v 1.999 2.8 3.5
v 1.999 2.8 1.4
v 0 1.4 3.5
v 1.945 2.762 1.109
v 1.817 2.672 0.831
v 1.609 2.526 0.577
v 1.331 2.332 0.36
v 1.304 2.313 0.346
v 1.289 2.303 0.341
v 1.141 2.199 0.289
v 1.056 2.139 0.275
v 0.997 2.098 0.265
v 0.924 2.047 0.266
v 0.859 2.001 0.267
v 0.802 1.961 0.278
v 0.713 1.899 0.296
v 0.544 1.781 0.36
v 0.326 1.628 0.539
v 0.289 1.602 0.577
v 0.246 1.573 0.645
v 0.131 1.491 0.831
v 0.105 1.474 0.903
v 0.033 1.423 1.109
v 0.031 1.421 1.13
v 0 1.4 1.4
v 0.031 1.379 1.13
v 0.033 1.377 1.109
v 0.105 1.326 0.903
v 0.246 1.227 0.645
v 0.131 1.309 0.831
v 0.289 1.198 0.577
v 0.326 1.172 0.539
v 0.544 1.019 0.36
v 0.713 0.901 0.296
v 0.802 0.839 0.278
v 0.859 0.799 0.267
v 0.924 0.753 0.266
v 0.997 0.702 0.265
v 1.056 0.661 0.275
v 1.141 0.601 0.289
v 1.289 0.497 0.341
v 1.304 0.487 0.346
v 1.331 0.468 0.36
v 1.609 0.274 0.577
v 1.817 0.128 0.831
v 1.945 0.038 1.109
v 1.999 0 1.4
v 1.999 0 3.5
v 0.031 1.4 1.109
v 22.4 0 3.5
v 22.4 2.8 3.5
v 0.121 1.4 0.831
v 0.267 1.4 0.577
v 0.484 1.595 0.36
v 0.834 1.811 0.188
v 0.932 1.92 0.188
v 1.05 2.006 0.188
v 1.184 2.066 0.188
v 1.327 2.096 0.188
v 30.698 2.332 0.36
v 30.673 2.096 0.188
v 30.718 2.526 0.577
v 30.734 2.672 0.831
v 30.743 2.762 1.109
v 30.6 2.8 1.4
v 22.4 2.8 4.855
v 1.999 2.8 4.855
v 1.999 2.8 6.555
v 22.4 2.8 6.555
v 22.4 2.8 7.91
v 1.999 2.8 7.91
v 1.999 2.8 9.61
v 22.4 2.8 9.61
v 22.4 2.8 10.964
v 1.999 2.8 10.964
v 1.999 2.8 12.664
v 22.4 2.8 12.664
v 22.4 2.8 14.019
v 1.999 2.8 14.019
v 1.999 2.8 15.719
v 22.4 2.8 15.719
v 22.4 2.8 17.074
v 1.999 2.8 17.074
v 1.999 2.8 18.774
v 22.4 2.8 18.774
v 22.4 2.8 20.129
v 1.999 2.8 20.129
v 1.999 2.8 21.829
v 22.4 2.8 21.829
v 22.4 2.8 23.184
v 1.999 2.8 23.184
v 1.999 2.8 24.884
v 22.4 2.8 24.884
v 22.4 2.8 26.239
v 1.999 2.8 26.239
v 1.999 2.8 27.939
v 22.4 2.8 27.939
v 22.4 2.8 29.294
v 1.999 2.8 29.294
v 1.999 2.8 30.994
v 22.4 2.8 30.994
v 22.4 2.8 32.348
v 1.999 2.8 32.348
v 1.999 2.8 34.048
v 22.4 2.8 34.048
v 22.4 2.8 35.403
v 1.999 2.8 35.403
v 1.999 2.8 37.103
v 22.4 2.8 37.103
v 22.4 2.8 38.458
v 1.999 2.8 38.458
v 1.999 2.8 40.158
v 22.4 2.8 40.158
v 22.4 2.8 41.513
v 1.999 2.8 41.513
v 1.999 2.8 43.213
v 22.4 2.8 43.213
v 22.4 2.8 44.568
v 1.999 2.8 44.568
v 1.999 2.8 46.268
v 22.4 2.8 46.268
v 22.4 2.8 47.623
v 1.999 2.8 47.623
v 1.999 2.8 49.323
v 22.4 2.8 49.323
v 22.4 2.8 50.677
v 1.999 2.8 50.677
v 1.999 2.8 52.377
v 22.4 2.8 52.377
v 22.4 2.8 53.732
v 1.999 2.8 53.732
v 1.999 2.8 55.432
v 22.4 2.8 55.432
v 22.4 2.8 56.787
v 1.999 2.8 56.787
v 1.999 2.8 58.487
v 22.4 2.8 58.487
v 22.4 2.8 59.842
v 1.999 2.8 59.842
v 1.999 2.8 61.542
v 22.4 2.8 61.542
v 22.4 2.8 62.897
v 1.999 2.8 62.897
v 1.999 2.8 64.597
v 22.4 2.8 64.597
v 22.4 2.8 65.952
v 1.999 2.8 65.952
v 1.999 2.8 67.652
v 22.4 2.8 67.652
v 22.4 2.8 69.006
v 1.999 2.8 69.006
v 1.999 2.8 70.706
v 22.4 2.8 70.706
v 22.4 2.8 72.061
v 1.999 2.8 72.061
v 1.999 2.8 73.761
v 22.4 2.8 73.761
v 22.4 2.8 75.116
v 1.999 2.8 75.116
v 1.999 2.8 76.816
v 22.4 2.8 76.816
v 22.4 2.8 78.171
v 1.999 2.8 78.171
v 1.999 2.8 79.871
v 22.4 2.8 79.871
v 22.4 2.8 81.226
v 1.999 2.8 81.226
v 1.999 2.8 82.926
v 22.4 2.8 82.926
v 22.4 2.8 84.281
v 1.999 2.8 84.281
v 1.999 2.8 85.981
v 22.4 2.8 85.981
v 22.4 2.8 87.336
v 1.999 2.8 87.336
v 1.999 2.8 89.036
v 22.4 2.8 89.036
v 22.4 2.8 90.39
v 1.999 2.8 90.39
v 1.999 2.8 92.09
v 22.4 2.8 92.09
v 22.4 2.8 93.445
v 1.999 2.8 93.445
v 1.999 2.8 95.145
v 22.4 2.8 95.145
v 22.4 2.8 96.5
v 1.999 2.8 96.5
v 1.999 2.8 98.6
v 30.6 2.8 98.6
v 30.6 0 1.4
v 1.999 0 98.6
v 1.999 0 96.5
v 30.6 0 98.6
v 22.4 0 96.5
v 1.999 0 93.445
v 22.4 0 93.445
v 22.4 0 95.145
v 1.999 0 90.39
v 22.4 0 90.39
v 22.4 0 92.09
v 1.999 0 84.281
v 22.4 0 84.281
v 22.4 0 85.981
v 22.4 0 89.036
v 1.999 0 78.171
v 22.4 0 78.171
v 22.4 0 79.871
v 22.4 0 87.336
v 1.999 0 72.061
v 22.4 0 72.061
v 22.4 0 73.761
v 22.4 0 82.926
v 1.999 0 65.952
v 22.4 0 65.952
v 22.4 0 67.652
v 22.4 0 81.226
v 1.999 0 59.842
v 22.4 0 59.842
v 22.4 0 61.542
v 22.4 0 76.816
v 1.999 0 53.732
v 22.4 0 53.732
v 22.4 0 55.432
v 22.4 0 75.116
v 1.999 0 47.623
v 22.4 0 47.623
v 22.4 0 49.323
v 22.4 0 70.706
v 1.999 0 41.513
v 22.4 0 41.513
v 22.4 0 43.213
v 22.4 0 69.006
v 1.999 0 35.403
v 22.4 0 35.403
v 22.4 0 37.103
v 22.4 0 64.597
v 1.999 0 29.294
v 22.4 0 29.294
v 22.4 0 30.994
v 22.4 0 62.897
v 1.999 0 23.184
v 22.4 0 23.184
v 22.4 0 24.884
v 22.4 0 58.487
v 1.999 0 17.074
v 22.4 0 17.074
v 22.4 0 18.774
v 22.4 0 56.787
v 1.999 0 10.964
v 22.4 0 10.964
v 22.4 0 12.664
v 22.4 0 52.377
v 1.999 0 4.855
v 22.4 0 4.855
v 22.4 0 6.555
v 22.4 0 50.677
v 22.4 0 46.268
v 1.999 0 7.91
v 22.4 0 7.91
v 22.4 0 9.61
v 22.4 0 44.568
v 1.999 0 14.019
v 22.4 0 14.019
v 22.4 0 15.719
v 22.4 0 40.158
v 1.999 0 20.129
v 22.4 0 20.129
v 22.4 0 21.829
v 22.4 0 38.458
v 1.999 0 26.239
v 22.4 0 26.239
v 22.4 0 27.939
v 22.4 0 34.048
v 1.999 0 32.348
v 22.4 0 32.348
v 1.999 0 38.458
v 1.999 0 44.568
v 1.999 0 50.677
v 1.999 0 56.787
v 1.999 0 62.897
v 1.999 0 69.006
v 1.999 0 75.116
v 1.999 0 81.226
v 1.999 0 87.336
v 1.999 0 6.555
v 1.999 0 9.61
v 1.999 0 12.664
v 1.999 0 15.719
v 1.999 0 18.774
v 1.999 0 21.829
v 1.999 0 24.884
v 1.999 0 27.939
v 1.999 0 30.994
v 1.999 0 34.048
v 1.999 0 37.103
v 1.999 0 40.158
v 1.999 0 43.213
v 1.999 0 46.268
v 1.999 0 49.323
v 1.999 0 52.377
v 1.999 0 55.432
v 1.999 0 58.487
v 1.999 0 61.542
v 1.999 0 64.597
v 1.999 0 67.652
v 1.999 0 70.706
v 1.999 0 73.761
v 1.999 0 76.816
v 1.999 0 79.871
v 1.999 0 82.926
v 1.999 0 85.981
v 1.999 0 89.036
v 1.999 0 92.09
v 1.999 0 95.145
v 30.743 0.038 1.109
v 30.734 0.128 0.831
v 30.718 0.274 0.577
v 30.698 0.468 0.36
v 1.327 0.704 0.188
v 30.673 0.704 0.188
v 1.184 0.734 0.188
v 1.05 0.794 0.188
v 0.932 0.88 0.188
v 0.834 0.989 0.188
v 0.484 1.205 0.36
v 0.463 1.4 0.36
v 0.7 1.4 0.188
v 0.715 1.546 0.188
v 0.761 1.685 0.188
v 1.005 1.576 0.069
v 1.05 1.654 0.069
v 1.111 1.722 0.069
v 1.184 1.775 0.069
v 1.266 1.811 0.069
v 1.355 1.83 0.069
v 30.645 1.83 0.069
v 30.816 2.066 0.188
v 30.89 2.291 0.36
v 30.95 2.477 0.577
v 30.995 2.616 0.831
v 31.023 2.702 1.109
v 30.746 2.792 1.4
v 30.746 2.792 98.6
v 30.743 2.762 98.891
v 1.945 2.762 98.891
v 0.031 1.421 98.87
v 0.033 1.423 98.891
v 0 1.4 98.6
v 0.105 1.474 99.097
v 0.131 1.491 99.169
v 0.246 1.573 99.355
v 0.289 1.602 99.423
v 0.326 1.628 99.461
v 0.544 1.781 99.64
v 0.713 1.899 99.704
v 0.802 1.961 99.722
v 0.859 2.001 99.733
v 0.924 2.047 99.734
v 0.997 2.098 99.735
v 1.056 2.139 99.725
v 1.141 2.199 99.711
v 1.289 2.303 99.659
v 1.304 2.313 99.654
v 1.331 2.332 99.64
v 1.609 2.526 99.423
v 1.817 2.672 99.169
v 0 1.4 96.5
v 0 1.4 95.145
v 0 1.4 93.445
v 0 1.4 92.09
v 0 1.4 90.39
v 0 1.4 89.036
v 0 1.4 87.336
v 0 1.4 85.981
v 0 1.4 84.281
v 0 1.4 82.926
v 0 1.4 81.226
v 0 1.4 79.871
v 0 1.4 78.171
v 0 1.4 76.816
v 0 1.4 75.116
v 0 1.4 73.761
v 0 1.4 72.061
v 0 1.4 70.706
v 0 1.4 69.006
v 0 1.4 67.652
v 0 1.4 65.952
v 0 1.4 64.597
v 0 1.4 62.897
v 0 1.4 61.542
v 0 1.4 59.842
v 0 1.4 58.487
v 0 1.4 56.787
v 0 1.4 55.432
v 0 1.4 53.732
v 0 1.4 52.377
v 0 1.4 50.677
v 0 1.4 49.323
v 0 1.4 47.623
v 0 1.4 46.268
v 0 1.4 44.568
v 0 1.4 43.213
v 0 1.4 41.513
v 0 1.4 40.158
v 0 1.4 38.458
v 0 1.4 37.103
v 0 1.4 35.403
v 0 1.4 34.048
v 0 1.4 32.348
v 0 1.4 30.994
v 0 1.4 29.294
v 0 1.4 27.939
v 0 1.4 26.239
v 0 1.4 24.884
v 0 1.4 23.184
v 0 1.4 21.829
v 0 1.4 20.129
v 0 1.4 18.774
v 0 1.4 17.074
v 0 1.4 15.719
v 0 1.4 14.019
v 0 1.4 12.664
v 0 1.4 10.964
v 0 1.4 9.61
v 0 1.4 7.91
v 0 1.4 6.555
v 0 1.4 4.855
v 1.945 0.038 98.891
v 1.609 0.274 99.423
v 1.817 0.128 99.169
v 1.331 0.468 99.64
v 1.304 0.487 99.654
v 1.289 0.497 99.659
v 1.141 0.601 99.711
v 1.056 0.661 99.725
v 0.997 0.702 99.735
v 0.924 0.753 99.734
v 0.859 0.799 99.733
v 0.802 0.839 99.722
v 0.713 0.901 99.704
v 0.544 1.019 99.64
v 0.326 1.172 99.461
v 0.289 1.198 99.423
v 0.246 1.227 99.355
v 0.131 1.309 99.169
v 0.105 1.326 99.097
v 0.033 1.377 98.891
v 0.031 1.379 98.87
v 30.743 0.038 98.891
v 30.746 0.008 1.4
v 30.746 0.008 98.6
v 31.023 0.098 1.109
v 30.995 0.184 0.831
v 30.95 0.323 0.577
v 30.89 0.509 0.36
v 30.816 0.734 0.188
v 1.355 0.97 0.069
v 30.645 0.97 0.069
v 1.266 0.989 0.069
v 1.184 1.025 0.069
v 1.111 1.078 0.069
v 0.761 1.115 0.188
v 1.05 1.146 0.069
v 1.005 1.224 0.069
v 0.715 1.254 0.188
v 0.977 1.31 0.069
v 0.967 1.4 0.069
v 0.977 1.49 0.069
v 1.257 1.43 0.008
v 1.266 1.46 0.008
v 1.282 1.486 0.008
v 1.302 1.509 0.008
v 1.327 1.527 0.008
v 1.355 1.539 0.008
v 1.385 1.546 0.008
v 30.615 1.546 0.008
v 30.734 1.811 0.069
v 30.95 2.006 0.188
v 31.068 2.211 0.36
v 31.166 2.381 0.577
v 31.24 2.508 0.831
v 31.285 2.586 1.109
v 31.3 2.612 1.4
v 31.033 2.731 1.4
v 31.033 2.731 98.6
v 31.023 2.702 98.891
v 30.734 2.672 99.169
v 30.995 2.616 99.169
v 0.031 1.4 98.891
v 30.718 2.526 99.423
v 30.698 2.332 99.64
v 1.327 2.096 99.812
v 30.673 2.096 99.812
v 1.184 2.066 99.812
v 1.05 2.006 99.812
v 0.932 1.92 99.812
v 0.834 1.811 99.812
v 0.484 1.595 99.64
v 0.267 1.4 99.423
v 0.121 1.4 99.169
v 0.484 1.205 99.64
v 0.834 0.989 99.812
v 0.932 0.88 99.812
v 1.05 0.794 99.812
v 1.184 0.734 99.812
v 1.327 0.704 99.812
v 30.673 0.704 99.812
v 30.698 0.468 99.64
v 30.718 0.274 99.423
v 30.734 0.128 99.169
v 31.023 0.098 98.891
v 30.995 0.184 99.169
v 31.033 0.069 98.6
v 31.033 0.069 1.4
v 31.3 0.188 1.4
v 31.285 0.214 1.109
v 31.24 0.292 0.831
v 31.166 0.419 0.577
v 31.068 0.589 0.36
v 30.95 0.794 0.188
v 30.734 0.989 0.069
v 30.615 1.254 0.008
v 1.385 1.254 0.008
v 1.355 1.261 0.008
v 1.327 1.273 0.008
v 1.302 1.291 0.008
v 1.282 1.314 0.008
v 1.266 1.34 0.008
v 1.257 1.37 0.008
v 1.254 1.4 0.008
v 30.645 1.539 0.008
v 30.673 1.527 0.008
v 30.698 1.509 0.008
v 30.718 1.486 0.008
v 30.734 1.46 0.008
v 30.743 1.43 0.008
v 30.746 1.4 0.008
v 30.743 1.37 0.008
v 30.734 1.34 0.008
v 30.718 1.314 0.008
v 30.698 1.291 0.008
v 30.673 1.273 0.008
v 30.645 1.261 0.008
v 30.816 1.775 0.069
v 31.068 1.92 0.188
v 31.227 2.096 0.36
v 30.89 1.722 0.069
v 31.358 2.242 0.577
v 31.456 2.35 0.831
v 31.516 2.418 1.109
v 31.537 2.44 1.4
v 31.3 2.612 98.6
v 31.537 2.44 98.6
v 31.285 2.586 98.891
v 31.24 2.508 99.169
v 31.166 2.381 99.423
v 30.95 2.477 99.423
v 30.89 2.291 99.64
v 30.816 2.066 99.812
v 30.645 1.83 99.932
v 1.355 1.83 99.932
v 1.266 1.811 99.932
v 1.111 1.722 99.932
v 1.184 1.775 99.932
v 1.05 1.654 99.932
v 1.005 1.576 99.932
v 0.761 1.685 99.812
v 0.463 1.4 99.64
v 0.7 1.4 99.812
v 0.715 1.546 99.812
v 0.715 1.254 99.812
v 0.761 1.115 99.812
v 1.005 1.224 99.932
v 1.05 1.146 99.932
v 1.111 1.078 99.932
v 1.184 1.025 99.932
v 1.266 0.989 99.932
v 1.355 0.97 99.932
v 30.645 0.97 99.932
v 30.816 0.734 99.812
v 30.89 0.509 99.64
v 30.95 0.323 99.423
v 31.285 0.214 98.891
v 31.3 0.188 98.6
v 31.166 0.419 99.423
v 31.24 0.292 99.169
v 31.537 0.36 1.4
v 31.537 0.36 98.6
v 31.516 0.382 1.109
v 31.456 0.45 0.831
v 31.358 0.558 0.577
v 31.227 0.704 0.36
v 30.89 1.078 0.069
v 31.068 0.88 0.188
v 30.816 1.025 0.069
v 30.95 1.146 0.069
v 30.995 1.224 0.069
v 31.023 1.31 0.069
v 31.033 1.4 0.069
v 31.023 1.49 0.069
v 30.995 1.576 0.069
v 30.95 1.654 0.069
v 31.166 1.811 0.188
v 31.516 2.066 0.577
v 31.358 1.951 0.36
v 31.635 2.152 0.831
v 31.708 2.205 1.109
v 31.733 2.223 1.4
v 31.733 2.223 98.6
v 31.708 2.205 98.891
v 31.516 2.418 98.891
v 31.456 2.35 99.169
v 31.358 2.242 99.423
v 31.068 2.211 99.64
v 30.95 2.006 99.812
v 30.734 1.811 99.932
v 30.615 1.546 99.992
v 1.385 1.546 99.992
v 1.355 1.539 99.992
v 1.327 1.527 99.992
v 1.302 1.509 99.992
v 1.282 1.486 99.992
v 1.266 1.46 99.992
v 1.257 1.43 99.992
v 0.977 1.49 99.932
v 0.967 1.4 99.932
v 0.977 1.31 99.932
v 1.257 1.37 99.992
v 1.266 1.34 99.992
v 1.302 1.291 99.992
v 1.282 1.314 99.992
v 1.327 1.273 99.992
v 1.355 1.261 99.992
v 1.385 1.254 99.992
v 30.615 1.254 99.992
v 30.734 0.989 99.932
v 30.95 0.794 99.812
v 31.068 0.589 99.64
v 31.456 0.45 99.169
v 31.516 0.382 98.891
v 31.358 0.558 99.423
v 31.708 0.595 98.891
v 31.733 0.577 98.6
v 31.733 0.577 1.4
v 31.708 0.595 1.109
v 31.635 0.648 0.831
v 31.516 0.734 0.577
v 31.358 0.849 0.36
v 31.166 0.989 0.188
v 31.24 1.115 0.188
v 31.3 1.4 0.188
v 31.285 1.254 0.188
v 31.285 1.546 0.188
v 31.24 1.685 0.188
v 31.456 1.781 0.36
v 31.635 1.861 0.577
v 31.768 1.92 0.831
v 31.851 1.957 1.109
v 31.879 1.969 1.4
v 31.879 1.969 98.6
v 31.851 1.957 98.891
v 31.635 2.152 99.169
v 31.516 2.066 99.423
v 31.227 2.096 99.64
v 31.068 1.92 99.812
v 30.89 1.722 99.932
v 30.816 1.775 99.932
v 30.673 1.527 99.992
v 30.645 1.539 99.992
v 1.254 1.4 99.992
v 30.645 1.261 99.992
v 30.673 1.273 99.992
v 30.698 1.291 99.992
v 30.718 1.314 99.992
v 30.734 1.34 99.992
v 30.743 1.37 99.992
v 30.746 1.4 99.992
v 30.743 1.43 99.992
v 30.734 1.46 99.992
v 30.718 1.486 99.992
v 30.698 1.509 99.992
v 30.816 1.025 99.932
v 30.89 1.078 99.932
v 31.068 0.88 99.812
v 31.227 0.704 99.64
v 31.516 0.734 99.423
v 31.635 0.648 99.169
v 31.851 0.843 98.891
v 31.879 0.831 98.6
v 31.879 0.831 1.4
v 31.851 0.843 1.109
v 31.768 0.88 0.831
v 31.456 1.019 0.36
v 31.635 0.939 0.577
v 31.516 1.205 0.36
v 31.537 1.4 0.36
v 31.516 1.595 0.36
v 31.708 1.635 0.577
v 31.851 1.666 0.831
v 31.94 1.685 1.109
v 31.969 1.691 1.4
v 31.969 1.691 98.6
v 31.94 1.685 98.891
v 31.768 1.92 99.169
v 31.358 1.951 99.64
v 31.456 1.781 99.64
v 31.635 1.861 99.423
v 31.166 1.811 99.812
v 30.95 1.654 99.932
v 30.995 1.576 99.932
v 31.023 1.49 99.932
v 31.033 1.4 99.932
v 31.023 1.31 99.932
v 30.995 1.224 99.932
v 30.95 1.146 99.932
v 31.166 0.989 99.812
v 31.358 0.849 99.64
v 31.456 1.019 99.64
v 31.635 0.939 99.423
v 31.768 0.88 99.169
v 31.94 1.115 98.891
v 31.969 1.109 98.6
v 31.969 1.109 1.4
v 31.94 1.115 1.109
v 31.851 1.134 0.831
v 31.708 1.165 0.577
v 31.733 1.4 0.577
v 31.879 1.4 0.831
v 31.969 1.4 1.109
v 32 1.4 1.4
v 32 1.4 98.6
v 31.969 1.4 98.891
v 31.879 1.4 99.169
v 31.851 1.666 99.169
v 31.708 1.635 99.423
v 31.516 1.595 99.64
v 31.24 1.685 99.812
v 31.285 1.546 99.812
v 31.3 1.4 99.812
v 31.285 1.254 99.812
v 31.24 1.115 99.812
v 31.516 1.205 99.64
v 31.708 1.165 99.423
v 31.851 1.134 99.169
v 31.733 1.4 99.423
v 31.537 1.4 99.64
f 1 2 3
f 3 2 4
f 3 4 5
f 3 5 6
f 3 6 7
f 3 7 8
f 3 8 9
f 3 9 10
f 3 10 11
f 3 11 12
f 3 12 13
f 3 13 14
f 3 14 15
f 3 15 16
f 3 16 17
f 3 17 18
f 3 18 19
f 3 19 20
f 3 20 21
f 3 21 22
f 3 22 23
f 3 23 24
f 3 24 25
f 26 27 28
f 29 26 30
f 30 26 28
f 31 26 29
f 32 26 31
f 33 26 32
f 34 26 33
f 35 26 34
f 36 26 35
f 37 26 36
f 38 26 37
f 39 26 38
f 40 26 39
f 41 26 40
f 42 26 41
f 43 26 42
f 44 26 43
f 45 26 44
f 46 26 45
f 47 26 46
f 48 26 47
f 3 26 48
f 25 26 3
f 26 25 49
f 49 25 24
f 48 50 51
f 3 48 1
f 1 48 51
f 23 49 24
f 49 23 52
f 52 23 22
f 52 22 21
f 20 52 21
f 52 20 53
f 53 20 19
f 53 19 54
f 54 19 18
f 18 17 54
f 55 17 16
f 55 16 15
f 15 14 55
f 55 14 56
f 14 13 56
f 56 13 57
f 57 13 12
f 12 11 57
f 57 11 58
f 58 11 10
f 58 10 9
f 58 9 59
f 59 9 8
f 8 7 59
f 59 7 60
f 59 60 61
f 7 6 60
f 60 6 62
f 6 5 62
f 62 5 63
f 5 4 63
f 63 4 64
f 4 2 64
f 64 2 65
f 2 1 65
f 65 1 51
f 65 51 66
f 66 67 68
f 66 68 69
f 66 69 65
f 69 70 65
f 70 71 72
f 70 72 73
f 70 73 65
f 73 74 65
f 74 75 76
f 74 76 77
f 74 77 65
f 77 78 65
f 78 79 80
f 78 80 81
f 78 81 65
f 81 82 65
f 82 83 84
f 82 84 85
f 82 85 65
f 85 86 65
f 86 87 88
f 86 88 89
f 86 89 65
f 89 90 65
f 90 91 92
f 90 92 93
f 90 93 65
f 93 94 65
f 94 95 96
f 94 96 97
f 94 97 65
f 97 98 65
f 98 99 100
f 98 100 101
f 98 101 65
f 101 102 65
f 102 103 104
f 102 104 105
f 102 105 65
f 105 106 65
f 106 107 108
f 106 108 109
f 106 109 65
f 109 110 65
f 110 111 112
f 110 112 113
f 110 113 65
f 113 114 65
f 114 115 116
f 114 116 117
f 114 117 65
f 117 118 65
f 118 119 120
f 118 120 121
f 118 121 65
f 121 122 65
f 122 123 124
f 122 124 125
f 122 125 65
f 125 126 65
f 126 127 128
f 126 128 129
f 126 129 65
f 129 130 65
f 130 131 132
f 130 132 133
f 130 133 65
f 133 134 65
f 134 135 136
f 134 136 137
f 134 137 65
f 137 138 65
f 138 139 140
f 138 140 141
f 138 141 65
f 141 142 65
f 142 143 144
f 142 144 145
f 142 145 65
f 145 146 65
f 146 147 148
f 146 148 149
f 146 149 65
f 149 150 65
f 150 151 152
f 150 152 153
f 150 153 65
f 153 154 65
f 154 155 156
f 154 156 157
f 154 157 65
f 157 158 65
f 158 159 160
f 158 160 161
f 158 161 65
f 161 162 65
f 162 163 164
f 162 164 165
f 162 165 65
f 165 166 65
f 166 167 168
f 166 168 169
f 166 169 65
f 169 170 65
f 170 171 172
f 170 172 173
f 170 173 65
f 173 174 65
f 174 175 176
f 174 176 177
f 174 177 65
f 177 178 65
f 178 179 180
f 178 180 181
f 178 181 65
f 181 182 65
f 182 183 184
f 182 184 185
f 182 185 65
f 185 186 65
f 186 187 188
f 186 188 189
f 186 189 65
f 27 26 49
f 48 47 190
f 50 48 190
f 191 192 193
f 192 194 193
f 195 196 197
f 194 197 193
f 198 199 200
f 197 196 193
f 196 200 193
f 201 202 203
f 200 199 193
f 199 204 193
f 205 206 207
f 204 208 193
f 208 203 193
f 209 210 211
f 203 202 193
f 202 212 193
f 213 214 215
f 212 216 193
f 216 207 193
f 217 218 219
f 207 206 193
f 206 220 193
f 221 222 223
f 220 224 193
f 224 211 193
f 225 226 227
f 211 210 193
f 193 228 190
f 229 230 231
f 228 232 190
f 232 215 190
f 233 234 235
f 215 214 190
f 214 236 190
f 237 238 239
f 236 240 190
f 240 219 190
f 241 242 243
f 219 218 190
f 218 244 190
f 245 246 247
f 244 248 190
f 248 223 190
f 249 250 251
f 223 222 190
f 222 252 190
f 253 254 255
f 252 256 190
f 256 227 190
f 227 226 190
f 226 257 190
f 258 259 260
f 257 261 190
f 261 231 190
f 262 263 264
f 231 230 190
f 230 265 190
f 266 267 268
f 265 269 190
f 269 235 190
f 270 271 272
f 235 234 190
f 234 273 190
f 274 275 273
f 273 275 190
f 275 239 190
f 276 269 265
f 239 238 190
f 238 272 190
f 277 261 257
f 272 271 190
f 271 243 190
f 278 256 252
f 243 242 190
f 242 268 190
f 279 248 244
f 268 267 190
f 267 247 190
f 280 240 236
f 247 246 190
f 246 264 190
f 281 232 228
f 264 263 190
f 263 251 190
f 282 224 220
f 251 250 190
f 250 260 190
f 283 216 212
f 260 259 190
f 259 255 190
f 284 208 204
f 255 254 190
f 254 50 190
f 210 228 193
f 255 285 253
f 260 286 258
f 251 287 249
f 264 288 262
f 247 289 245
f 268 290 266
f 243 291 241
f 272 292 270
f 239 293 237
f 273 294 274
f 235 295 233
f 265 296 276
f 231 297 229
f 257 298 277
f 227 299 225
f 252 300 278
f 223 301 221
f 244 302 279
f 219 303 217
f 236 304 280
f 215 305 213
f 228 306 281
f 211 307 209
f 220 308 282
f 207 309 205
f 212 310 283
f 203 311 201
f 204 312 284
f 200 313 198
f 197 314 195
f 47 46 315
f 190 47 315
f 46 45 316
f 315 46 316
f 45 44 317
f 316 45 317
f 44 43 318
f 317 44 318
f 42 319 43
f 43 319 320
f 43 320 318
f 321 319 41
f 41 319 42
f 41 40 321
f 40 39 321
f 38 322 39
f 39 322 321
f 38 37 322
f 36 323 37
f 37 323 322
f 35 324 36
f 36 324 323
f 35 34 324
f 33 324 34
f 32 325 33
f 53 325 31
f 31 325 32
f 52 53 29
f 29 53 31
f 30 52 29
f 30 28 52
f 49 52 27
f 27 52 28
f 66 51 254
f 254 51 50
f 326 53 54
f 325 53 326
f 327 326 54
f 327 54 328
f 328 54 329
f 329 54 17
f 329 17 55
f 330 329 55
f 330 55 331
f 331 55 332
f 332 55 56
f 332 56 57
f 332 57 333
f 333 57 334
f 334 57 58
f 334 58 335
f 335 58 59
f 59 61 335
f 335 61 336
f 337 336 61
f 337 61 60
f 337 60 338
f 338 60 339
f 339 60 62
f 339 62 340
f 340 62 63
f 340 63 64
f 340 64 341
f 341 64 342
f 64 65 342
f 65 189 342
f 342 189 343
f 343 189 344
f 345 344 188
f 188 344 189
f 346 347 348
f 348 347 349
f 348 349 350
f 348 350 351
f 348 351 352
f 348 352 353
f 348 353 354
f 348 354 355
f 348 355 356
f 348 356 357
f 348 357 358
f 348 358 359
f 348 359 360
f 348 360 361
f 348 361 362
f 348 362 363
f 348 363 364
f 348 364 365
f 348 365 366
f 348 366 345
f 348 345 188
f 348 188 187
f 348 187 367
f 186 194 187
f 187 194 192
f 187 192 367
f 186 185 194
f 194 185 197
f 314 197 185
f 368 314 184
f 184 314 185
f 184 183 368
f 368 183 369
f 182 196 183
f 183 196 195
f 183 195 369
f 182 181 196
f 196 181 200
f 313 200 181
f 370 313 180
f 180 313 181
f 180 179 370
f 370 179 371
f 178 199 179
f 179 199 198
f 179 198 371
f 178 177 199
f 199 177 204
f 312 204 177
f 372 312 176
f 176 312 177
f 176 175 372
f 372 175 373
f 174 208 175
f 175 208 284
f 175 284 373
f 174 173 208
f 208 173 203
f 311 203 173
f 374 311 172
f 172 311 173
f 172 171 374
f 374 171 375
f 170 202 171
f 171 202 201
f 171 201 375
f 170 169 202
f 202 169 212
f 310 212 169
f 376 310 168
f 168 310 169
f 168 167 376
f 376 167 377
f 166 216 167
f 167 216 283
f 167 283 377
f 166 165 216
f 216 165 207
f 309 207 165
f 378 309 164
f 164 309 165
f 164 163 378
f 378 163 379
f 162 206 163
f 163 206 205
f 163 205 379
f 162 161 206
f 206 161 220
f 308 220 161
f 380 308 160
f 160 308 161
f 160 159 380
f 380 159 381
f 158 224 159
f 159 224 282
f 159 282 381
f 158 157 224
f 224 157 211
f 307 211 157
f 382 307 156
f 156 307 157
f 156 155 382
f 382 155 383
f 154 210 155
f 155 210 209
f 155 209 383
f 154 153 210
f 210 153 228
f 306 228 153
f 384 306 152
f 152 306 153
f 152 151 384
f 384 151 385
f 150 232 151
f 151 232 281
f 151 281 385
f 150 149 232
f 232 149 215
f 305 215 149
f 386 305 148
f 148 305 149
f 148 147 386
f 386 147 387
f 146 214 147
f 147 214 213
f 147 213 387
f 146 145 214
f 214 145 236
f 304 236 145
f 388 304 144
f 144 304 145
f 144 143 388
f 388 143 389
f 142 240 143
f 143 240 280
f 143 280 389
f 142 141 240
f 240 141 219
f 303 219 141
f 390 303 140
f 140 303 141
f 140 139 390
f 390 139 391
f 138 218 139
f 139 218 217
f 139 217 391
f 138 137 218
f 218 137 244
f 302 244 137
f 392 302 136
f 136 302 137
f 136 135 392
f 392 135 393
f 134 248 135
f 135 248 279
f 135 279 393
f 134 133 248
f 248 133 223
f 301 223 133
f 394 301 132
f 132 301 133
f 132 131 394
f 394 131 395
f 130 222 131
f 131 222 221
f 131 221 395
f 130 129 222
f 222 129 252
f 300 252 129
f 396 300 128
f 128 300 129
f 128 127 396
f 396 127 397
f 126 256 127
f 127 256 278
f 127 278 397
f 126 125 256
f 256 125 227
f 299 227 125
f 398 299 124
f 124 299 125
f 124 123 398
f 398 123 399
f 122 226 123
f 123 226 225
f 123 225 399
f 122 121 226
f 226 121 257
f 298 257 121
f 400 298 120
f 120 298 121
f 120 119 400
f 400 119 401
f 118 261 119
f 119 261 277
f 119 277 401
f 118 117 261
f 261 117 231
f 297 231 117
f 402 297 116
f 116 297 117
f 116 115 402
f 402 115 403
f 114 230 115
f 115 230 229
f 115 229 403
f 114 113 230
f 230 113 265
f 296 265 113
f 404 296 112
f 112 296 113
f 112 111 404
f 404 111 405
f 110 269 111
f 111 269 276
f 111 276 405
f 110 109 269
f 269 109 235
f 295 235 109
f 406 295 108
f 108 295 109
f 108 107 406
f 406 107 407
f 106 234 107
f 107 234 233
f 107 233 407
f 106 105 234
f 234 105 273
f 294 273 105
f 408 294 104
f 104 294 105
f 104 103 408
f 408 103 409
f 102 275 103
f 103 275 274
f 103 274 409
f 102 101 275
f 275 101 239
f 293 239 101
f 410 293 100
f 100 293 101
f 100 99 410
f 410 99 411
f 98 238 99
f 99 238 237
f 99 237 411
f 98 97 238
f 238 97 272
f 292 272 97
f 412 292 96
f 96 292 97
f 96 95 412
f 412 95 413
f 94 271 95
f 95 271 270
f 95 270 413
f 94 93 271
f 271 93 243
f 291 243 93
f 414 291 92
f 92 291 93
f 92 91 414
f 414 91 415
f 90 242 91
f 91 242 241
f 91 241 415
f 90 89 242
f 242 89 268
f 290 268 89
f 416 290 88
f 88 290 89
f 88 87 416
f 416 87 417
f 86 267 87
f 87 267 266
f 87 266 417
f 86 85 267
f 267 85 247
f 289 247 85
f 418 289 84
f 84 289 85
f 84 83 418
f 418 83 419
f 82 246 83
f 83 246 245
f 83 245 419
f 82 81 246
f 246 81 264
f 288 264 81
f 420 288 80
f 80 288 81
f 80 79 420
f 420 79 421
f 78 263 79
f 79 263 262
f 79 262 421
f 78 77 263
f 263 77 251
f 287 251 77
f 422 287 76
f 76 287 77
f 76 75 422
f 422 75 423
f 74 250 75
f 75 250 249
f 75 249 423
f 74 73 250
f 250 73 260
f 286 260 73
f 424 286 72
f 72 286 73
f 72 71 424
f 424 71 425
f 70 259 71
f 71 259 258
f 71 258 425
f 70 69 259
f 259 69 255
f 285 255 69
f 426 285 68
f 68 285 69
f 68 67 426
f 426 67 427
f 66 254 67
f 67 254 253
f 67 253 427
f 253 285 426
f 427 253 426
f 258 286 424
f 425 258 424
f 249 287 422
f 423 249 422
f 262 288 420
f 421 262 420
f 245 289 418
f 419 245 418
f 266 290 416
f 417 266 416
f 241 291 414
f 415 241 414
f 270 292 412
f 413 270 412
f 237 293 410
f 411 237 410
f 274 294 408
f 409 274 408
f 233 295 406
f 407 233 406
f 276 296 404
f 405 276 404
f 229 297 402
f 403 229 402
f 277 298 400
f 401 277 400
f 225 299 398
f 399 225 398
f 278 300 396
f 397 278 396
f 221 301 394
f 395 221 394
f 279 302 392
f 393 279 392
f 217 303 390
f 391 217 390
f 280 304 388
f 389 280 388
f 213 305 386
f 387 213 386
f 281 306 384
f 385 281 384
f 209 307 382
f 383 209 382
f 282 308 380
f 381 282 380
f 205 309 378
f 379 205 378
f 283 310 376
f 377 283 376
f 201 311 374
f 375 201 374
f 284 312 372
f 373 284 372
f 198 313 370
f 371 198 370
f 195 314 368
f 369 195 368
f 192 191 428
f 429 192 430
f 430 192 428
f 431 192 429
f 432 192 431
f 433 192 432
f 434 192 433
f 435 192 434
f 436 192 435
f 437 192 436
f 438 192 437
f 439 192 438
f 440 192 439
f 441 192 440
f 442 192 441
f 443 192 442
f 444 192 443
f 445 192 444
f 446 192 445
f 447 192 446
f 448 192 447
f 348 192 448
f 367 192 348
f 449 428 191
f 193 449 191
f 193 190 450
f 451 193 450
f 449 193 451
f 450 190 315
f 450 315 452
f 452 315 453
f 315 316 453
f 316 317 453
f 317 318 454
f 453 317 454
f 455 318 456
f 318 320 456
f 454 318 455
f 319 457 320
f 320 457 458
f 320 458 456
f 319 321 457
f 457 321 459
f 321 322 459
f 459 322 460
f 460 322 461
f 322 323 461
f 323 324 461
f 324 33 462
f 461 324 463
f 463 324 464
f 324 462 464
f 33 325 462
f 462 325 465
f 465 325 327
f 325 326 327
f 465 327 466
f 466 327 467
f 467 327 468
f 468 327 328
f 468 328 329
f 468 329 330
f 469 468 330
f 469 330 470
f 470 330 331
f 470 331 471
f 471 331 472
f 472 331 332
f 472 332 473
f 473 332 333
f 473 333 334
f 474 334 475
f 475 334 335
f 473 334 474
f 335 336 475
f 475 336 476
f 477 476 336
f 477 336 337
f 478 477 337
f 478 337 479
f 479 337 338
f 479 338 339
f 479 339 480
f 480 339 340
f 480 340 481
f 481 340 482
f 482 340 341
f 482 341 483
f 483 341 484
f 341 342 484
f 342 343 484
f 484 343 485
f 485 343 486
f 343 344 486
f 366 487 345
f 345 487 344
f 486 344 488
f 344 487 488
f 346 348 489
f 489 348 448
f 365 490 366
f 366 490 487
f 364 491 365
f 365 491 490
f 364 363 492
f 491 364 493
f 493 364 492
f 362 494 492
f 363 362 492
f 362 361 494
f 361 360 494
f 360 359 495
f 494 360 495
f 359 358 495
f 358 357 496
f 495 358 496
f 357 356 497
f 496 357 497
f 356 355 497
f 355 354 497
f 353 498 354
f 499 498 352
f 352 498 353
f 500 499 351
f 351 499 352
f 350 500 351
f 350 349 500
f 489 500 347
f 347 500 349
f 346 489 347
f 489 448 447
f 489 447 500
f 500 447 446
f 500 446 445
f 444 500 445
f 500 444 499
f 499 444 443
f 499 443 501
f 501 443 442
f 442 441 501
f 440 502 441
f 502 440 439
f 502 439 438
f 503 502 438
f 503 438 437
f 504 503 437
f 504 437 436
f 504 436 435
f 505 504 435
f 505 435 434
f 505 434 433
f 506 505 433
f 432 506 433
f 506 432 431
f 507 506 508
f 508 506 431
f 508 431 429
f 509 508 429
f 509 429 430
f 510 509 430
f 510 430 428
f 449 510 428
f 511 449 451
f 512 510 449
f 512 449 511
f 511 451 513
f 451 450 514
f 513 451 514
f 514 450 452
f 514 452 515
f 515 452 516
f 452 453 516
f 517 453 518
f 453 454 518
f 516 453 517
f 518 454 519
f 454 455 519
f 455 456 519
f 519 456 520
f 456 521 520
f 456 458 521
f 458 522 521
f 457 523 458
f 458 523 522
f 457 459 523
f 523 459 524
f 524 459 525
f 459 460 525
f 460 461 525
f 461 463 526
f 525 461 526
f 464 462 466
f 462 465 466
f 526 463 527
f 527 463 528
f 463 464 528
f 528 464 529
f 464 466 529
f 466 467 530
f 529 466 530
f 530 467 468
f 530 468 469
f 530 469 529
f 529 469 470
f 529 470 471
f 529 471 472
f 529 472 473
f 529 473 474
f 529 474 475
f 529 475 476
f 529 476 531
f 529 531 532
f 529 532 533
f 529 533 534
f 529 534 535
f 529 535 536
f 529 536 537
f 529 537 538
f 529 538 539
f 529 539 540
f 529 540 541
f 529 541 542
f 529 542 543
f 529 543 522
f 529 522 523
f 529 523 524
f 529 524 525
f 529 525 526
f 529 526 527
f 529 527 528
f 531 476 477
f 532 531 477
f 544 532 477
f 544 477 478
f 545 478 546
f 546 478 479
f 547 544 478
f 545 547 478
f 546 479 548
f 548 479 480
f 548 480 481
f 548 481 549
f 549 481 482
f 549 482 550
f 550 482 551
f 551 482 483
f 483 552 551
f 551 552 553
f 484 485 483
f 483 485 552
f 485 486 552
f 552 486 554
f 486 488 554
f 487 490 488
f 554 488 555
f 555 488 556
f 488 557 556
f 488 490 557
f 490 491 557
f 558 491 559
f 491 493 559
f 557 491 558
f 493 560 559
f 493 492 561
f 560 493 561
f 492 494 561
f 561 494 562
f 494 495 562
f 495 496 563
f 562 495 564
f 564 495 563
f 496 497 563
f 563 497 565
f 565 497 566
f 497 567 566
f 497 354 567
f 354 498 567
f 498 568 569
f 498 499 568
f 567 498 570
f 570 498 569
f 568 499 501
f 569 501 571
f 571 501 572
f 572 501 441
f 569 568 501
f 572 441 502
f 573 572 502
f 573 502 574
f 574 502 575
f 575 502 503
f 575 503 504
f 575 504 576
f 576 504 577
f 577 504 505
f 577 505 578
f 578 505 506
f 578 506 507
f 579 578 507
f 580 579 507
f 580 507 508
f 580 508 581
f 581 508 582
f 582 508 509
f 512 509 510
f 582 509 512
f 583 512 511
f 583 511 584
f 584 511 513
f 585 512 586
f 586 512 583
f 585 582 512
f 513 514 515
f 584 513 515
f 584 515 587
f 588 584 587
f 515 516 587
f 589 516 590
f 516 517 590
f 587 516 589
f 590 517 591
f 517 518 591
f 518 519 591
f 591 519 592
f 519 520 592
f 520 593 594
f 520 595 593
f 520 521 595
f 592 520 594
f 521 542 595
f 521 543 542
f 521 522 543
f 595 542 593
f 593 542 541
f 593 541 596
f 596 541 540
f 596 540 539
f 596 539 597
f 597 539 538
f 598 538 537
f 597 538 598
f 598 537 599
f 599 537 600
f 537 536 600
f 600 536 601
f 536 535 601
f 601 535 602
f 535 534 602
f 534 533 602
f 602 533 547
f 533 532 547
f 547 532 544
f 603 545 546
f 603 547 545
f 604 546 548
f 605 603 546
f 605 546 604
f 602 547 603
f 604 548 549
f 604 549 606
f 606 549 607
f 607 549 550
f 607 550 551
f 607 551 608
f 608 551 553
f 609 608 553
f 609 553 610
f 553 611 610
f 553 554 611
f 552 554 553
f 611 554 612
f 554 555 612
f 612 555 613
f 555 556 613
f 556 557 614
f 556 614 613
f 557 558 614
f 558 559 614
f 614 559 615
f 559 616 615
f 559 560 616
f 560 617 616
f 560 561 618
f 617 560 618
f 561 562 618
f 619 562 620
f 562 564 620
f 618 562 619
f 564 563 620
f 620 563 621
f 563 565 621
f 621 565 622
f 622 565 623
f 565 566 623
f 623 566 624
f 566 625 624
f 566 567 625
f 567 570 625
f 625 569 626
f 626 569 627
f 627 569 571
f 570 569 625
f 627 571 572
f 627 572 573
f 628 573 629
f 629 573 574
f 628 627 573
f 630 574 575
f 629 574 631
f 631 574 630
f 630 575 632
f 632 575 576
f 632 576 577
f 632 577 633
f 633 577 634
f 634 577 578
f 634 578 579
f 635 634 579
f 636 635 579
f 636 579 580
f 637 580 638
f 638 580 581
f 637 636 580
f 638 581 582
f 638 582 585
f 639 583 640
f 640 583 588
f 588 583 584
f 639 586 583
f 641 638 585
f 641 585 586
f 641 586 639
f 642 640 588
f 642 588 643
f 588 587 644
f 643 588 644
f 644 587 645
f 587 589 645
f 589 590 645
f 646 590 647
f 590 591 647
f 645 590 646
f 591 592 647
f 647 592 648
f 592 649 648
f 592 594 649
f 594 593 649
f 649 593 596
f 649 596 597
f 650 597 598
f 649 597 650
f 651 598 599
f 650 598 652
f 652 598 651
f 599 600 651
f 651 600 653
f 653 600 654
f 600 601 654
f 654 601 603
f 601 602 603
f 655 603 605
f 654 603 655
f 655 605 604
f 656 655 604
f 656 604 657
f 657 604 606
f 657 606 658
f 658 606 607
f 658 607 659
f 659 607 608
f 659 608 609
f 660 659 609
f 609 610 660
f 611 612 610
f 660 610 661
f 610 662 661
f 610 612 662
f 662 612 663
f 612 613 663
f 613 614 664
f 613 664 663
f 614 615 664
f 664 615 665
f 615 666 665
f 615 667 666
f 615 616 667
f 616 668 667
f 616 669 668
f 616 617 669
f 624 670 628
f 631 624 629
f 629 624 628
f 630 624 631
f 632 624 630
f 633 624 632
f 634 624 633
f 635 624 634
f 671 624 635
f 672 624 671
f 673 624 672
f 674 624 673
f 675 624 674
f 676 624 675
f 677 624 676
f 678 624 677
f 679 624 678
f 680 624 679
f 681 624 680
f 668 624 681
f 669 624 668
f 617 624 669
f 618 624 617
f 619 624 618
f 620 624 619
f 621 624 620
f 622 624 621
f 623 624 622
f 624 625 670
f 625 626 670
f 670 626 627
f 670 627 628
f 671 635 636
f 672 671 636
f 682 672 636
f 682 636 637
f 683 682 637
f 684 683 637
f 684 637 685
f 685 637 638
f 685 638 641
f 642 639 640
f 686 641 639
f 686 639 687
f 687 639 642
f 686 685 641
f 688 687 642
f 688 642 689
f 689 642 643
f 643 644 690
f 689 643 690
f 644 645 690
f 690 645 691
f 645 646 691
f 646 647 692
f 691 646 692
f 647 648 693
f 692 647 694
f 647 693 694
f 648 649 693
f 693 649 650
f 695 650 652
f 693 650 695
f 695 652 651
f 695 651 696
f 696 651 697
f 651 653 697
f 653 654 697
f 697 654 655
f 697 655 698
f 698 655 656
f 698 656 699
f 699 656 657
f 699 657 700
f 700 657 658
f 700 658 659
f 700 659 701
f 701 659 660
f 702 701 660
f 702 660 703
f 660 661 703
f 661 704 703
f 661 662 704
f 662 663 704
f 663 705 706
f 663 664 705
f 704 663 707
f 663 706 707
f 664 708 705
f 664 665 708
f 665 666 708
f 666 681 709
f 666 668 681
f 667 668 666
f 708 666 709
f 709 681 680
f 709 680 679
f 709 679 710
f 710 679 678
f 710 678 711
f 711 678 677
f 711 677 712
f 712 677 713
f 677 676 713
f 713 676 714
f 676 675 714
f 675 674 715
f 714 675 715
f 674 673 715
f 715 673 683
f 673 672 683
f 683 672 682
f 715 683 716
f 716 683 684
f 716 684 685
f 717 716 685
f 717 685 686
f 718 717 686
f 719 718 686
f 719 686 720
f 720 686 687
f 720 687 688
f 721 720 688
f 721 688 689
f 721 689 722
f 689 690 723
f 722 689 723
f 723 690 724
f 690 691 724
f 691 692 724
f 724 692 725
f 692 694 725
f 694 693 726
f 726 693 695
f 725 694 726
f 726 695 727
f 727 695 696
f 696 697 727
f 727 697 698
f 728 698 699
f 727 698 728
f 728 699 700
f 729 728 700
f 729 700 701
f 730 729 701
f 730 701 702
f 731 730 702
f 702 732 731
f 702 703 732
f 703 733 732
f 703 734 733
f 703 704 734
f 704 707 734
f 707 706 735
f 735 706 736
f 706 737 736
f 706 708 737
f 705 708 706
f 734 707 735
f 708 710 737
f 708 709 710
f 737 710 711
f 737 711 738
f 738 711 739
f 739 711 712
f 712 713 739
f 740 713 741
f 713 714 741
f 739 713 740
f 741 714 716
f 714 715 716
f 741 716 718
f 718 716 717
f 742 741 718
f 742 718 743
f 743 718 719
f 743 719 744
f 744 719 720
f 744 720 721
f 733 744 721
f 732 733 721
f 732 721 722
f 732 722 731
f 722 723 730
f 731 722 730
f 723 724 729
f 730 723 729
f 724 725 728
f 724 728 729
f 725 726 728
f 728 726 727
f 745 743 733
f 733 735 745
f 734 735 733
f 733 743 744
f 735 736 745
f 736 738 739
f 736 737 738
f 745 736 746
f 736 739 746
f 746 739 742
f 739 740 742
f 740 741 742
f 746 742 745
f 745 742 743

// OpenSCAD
// ---- Dimensions
height = 32;
thickness = 2.8;
width = 100;

// ---- Parameters

toothWidth = 1.7;
numberOfTeeth = 30;

toothCutAngle = 70;
handleHeight = height * 0.3;
side = width * .035;

// ---- Calculations

workingWidth = width - 2 * side;
// workingWidth = numberOfTeeth * toothWidth + (numberOfTeeth + 1) * toothGap
toothGap = (workingWidth - numberOfTeeth * toothWidth) / (numberOfTeeth + 1);
toothStep = toothGap + toothWidth;

echo("workingWidth=", workingWidth, "toothWidth=", toothWidth, "toothGap=", toothGap, "toothStep=", toothStep);

// ---- Assemble

$fs = toothWidth / 10;

module base() {
  // cube with rounded corners
  hull() {
    translate([thickness / 2, 0, thickness / 2])
    cube(size = [height - thickness, thickness, width - thickness]);

    translate([thickness / 2, thickness / 2, thickness / 2])
    sphere(r = thickness / 2);

    translate([thickness / 2, thickness / 2, width - thickness / 2])
    sphere(r = thickness / 2);

    translate([height - thickness / 2, thickness / 2, width - thickness / 2])
    sphere(r = thickness / 2);

    translate([height - thickness / 2, thickness / 2, thickness / 2])
    sphere(r = thickness / 2);
  }
}

difference() {
  base();

  // cut teeth out
  for (i = [0 : numberOfTeeth]) {
    translate([-1, -100, side + i * toothStep])
    cube(size = [1 + height - handleHeight, 200, toothGap]);
  }

  // "sharpen" teeth
  translate([0, thickness / 2, -1])
  rotate(a=90-toothCutAngle / 2 + 180, v=[0, 0, 1])
  cube(size = [1000, 1000, width + 2]);

  translate([0, thickness / 2, -1])
  rotate(a=toothCutAngle / 2, v=[0, 0, 1])
  cube(size = [1000, 1000, width + 2]);
}
